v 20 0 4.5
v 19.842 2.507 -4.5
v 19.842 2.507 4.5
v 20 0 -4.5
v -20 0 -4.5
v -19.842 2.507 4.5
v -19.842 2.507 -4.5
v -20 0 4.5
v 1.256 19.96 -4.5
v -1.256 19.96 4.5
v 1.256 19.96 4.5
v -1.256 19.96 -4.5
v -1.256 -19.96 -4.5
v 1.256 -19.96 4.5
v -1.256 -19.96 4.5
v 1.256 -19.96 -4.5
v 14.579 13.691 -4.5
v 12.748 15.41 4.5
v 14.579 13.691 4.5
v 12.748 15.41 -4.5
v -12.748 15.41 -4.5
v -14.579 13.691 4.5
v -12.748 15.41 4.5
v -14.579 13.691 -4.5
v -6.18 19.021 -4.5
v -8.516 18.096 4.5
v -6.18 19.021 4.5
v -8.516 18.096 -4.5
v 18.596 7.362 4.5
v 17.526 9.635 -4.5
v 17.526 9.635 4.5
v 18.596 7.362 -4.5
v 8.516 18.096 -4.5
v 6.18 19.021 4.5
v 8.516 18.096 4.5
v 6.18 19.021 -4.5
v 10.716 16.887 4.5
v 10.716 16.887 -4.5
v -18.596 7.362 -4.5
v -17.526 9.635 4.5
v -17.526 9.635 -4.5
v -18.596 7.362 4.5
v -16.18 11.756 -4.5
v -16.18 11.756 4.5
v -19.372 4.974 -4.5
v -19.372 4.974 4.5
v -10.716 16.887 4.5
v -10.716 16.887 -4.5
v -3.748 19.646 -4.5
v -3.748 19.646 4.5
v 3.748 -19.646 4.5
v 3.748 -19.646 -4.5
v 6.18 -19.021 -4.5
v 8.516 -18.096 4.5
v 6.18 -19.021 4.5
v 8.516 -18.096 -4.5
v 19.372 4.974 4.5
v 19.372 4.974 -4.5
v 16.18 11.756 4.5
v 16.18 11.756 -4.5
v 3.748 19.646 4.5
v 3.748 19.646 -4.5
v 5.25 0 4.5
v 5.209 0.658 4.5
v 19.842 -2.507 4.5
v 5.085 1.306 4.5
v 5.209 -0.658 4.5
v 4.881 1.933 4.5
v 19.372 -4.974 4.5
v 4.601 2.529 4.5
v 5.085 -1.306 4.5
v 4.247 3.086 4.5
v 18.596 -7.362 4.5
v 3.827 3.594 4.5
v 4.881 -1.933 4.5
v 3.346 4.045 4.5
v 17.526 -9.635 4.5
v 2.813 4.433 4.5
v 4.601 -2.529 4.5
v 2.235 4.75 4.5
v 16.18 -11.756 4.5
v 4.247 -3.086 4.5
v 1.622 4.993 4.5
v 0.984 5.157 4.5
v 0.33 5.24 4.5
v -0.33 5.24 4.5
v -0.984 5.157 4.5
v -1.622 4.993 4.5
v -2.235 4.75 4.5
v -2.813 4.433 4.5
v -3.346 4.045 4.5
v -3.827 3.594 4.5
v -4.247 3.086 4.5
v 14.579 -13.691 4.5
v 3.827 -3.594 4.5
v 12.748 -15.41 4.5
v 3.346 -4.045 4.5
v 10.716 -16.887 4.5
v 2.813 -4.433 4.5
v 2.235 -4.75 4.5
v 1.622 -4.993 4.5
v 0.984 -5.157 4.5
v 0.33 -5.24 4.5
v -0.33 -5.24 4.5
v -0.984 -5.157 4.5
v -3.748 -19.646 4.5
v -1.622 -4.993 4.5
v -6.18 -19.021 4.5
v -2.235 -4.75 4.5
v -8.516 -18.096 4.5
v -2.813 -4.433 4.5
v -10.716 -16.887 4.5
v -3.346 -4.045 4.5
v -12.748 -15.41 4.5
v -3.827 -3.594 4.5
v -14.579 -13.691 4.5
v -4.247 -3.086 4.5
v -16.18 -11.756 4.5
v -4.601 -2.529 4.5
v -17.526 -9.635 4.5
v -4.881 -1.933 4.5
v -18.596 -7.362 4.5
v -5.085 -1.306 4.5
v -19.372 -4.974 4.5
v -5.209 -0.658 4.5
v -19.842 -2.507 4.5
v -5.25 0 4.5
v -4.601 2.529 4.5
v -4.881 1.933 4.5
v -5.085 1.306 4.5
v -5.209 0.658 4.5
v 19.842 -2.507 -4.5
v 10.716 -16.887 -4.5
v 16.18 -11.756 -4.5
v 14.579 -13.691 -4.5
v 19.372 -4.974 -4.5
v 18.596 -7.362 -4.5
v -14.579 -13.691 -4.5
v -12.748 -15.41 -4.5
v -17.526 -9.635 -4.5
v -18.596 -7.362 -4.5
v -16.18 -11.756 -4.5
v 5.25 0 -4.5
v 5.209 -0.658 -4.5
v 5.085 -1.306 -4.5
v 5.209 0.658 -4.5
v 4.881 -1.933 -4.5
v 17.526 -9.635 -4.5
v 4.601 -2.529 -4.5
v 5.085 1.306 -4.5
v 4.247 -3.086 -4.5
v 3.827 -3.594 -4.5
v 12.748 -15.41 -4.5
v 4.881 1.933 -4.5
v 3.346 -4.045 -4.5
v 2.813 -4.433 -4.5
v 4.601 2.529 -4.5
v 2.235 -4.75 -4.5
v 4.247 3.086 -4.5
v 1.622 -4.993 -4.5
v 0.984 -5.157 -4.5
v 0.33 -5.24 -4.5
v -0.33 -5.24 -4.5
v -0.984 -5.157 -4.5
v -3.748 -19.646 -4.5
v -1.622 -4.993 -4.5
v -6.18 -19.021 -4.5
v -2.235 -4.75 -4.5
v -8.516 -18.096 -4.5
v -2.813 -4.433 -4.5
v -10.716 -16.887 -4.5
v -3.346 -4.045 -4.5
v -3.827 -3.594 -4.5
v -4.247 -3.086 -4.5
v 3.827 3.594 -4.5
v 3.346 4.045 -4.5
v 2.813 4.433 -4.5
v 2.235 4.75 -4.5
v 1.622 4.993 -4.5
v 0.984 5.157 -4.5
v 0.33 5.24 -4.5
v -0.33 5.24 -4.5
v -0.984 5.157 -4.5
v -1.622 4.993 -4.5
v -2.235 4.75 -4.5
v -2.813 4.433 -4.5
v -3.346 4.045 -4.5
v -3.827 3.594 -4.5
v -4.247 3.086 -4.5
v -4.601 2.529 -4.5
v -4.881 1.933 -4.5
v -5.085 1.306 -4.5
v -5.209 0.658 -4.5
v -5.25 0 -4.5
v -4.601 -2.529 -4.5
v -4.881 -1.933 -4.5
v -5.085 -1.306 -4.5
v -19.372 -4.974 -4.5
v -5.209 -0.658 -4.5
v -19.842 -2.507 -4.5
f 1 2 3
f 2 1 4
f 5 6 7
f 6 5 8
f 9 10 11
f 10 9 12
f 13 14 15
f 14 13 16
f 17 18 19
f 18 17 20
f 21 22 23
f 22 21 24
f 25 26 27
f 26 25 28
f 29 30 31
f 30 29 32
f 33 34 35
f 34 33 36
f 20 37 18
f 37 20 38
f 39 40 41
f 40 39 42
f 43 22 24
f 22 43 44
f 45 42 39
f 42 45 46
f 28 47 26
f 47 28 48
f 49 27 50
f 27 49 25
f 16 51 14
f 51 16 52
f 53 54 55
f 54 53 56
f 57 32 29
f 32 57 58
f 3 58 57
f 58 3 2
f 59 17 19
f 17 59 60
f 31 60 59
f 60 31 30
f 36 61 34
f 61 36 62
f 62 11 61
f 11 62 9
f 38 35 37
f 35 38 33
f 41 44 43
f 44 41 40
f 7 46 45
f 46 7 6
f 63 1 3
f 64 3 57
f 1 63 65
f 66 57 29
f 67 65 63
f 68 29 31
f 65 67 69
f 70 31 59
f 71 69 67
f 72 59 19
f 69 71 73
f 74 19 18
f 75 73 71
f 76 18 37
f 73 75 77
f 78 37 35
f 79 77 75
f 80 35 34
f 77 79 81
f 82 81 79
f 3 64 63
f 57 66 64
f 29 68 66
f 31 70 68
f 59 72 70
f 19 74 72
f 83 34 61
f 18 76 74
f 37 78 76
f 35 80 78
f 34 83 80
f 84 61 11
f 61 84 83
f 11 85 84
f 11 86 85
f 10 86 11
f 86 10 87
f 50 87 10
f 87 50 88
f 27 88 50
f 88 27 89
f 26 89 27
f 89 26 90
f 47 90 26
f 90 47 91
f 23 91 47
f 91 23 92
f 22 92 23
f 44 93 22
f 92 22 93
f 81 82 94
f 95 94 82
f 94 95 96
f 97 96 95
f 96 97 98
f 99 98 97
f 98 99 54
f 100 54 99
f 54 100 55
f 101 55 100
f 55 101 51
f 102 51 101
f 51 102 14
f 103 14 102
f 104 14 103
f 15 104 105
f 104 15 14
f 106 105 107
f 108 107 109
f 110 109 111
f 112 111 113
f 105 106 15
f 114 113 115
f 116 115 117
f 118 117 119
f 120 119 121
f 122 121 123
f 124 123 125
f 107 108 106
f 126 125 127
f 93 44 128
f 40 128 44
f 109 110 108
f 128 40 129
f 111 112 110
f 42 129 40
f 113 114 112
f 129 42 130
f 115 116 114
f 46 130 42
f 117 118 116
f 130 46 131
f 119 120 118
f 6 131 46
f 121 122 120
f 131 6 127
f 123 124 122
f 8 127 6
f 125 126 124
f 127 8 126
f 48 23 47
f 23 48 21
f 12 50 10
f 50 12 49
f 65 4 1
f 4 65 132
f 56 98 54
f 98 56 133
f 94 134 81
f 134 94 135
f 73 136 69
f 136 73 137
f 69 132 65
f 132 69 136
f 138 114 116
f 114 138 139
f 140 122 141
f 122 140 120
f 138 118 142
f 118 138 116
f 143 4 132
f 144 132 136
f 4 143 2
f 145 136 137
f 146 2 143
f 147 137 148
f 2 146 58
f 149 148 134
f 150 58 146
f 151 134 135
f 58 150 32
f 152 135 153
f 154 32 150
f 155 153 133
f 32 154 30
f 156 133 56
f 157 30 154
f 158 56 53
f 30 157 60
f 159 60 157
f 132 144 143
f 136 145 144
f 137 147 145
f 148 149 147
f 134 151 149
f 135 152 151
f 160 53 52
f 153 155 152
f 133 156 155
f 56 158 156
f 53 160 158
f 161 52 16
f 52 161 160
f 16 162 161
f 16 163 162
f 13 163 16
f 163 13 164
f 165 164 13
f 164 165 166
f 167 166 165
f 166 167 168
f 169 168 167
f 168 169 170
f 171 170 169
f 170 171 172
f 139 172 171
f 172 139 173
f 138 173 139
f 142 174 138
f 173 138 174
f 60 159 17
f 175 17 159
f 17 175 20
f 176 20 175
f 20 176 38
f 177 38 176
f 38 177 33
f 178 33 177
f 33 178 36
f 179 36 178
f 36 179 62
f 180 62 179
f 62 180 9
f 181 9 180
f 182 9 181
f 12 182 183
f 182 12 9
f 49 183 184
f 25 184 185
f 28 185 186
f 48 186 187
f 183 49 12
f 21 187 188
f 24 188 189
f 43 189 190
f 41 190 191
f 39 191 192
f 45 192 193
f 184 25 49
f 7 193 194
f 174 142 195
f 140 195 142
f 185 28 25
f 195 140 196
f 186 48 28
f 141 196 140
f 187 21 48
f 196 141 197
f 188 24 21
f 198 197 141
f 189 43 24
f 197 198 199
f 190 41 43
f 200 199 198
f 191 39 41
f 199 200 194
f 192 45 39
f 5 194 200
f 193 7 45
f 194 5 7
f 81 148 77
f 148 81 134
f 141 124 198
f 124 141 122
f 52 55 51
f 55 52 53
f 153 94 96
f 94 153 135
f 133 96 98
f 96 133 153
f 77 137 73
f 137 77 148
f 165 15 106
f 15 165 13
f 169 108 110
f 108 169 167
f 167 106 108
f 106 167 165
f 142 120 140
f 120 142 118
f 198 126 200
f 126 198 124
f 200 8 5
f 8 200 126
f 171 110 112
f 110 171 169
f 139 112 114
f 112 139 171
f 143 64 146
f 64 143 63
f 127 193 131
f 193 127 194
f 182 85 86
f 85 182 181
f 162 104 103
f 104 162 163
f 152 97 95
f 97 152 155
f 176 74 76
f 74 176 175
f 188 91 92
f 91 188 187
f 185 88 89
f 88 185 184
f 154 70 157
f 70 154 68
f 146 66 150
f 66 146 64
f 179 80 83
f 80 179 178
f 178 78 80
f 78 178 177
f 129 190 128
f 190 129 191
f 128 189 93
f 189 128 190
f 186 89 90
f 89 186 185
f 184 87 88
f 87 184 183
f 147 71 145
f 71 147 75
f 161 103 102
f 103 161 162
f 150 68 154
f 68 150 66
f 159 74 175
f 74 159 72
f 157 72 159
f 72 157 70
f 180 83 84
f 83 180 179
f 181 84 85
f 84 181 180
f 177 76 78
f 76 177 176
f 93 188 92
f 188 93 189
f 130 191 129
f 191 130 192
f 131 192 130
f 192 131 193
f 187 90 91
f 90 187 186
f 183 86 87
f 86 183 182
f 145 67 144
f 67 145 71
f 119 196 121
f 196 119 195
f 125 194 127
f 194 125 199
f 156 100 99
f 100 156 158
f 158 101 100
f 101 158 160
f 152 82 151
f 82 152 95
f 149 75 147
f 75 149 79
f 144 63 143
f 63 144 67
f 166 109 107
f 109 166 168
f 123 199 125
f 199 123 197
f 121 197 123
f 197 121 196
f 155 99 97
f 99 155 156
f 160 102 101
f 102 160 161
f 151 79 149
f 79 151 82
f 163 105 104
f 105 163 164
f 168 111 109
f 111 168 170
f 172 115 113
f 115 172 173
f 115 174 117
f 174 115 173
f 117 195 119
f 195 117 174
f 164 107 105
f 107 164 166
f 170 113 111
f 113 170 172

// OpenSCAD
$fn = 50;


difference() {
	union() {
		translate(v = [0, 0, -4.5000000000]) {
			cylinder(h = 9, r = 20.0000000000);
		}
	}
	union() {
		translate(v = [0, 0, -100.0000000000]) {
			cylinder(h = 200, r = 5.2500000000);
		}
	}
}
